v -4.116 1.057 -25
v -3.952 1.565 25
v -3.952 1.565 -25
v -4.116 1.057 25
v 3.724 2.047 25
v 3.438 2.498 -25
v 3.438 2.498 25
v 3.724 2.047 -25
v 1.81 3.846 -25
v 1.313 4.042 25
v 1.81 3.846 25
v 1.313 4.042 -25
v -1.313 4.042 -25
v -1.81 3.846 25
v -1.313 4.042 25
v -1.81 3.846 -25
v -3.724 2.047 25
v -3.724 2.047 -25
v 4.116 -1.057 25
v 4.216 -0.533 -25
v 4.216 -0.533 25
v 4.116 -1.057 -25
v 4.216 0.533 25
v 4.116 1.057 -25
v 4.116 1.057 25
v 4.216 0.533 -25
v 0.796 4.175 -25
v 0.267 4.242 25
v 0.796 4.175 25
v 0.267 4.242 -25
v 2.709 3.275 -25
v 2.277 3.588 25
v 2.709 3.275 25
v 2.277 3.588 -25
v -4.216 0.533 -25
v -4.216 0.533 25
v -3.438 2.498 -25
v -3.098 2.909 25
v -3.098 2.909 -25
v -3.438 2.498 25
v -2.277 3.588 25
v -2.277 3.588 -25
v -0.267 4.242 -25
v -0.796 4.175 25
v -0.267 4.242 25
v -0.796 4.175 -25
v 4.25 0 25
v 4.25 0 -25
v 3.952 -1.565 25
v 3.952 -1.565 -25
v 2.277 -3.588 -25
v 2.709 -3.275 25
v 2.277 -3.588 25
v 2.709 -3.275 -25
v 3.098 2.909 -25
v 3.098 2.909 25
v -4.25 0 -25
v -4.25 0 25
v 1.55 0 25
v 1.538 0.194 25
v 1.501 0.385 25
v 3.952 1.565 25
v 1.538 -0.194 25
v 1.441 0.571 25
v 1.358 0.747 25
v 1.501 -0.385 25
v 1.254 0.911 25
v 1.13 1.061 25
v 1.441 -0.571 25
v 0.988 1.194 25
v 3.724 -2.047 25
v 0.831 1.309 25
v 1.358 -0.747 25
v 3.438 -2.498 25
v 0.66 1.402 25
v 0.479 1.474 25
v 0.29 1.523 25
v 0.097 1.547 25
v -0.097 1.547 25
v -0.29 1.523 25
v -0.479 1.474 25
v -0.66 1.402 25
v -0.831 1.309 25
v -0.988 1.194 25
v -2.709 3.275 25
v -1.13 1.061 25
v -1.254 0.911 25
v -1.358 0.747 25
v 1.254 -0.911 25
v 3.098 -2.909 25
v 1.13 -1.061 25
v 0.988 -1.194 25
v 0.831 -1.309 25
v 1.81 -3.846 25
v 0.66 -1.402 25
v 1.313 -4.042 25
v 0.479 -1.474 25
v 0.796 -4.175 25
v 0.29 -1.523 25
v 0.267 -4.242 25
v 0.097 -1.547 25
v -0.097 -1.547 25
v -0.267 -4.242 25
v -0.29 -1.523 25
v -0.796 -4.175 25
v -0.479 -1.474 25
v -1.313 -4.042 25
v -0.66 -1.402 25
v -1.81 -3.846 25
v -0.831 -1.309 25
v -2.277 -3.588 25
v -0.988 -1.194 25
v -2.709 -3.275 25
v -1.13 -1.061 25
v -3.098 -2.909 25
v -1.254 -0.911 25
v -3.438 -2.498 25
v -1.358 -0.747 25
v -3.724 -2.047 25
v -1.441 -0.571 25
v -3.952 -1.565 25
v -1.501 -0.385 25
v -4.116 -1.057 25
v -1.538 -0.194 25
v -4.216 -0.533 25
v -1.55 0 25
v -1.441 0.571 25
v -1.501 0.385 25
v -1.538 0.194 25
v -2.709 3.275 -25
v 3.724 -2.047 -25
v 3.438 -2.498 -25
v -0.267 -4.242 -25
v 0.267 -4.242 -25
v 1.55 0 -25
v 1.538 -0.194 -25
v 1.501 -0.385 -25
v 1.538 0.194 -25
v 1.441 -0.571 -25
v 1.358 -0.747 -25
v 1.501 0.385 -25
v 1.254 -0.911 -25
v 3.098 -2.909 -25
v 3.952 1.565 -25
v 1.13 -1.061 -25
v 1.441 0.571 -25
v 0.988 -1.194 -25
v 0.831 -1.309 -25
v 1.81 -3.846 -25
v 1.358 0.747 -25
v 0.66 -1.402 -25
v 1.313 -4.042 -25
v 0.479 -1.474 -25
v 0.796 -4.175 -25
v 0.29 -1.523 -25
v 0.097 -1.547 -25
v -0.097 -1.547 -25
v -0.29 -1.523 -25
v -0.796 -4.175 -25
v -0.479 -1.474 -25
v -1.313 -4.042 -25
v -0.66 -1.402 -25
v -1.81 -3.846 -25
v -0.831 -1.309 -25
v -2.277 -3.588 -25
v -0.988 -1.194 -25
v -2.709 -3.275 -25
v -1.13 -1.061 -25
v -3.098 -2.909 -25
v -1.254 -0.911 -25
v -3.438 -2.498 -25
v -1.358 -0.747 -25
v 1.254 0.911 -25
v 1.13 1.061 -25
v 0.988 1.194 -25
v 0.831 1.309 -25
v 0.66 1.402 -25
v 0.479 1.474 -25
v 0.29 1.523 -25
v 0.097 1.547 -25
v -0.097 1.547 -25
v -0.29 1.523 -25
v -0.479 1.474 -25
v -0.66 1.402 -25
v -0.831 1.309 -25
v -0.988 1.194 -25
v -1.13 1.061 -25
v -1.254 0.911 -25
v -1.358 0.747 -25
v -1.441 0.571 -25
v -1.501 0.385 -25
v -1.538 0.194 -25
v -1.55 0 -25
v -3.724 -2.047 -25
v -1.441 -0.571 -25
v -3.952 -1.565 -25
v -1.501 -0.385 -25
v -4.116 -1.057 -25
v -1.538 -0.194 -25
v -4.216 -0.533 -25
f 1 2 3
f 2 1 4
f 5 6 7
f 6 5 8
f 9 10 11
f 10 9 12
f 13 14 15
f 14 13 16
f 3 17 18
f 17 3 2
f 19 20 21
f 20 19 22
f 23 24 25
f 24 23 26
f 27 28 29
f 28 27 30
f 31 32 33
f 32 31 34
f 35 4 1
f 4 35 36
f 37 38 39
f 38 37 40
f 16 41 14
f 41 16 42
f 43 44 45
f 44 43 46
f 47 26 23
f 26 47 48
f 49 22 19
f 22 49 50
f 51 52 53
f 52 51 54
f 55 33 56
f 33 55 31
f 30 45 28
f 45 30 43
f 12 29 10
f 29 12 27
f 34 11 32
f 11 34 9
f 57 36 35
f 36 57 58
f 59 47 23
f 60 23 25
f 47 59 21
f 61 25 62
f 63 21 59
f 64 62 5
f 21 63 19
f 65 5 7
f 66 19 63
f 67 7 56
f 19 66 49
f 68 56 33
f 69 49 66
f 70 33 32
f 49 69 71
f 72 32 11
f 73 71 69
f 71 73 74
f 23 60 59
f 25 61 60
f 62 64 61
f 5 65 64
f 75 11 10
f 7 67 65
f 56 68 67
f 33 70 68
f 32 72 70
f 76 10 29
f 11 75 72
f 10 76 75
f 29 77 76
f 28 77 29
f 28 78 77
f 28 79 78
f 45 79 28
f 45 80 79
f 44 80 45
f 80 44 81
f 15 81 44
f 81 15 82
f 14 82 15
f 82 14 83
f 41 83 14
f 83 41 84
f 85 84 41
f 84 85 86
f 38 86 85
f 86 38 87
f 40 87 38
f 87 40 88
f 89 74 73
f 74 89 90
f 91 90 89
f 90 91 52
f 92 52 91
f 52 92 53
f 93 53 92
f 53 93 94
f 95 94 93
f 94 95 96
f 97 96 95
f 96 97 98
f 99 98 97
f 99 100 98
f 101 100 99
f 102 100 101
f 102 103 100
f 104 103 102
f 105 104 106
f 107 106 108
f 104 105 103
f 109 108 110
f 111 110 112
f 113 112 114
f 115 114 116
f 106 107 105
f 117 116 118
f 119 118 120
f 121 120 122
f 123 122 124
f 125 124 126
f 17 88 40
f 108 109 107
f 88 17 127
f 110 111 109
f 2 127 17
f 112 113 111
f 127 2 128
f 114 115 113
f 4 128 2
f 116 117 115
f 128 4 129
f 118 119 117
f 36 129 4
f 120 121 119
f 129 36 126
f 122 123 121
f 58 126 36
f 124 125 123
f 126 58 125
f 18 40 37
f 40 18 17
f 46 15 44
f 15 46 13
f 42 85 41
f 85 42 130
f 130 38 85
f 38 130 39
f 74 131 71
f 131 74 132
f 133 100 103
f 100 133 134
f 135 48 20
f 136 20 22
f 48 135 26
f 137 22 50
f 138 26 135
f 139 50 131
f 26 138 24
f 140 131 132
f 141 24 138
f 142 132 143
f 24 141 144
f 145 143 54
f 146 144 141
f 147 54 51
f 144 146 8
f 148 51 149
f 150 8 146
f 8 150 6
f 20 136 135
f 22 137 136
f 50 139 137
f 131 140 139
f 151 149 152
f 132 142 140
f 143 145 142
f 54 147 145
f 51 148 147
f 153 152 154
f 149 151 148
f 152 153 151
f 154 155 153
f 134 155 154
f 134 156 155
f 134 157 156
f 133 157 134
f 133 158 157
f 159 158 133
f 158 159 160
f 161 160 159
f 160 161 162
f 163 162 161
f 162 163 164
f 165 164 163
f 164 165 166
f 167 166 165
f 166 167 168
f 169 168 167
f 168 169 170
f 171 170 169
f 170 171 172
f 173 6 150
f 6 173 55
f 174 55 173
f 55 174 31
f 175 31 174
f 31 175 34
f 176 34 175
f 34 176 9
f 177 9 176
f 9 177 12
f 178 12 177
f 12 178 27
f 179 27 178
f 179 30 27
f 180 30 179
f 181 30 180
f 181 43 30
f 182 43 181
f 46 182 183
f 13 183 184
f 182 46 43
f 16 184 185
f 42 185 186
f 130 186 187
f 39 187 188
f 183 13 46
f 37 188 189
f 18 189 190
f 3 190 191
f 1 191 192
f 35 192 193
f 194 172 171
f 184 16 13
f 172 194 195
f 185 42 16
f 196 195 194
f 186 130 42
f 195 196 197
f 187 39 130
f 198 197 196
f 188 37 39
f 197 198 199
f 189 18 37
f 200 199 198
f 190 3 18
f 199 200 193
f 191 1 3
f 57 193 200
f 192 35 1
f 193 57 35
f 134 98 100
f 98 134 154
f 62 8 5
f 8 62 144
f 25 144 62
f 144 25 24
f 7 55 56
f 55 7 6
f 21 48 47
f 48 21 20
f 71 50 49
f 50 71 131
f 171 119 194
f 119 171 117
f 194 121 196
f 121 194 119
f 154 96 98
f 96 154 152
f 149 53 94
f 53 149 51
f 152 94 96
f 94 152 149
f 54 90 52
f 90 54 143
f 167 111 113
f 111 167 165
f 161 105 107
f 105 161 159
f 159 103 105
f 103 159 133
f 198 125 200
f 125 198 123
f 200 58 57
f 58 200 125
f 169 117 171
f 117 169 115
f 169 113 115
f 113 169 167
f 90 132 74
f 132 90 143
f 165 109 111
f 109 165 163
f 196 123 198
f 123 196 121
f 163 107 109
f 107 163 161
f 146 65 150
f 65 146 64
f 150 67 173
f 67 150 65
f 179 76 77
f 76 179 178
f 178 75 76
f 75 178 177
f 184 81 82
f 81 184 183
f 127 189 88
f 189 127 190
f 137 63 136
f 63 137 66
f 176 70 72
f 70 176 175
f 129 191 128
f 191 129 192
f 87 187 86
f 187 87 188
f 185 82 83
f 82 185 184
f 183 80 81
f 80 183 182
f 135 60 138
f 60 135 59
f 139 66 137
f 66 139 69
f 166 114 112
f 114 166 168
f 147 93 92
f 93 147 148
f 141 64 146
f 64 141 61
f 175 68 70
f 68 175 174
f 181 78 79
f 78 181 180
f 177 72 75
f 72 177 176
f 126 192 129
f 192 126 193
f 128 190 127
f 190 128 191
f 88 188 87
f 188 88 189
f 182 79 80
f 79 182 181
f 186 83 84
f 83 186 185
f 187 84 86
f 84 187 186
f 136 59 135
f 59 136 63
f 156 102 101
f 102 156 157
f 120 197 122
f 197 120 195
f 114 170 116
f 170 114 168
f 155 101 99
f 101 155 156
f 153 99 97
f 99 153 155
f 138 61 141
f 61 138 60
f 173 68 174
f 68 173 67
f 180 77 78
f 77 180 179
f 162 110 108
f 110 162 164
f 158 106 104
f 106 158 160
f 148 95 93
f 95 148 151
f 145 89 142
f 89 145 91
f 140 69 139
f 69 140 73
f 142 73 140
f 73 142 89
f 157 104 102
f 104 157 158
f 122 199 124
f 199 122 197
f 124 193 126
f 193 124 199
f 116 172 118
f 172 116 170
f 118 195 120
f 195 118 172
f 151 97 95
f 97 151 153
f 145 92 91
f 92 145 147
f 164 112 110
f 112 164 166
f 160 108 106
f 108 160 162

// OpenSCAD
$fn = 50;


difference() {
	union() {
		translate(v = [0, 0, -25.0000000000]) {
			cylinder(h = 50, r = 4.2500000000);
		}
	}
	union() {
		translate(v = [0, 0, -100.0000000000]) {
			cylinder(h = 200, r = 1.5500000000);
		}
	}
}
